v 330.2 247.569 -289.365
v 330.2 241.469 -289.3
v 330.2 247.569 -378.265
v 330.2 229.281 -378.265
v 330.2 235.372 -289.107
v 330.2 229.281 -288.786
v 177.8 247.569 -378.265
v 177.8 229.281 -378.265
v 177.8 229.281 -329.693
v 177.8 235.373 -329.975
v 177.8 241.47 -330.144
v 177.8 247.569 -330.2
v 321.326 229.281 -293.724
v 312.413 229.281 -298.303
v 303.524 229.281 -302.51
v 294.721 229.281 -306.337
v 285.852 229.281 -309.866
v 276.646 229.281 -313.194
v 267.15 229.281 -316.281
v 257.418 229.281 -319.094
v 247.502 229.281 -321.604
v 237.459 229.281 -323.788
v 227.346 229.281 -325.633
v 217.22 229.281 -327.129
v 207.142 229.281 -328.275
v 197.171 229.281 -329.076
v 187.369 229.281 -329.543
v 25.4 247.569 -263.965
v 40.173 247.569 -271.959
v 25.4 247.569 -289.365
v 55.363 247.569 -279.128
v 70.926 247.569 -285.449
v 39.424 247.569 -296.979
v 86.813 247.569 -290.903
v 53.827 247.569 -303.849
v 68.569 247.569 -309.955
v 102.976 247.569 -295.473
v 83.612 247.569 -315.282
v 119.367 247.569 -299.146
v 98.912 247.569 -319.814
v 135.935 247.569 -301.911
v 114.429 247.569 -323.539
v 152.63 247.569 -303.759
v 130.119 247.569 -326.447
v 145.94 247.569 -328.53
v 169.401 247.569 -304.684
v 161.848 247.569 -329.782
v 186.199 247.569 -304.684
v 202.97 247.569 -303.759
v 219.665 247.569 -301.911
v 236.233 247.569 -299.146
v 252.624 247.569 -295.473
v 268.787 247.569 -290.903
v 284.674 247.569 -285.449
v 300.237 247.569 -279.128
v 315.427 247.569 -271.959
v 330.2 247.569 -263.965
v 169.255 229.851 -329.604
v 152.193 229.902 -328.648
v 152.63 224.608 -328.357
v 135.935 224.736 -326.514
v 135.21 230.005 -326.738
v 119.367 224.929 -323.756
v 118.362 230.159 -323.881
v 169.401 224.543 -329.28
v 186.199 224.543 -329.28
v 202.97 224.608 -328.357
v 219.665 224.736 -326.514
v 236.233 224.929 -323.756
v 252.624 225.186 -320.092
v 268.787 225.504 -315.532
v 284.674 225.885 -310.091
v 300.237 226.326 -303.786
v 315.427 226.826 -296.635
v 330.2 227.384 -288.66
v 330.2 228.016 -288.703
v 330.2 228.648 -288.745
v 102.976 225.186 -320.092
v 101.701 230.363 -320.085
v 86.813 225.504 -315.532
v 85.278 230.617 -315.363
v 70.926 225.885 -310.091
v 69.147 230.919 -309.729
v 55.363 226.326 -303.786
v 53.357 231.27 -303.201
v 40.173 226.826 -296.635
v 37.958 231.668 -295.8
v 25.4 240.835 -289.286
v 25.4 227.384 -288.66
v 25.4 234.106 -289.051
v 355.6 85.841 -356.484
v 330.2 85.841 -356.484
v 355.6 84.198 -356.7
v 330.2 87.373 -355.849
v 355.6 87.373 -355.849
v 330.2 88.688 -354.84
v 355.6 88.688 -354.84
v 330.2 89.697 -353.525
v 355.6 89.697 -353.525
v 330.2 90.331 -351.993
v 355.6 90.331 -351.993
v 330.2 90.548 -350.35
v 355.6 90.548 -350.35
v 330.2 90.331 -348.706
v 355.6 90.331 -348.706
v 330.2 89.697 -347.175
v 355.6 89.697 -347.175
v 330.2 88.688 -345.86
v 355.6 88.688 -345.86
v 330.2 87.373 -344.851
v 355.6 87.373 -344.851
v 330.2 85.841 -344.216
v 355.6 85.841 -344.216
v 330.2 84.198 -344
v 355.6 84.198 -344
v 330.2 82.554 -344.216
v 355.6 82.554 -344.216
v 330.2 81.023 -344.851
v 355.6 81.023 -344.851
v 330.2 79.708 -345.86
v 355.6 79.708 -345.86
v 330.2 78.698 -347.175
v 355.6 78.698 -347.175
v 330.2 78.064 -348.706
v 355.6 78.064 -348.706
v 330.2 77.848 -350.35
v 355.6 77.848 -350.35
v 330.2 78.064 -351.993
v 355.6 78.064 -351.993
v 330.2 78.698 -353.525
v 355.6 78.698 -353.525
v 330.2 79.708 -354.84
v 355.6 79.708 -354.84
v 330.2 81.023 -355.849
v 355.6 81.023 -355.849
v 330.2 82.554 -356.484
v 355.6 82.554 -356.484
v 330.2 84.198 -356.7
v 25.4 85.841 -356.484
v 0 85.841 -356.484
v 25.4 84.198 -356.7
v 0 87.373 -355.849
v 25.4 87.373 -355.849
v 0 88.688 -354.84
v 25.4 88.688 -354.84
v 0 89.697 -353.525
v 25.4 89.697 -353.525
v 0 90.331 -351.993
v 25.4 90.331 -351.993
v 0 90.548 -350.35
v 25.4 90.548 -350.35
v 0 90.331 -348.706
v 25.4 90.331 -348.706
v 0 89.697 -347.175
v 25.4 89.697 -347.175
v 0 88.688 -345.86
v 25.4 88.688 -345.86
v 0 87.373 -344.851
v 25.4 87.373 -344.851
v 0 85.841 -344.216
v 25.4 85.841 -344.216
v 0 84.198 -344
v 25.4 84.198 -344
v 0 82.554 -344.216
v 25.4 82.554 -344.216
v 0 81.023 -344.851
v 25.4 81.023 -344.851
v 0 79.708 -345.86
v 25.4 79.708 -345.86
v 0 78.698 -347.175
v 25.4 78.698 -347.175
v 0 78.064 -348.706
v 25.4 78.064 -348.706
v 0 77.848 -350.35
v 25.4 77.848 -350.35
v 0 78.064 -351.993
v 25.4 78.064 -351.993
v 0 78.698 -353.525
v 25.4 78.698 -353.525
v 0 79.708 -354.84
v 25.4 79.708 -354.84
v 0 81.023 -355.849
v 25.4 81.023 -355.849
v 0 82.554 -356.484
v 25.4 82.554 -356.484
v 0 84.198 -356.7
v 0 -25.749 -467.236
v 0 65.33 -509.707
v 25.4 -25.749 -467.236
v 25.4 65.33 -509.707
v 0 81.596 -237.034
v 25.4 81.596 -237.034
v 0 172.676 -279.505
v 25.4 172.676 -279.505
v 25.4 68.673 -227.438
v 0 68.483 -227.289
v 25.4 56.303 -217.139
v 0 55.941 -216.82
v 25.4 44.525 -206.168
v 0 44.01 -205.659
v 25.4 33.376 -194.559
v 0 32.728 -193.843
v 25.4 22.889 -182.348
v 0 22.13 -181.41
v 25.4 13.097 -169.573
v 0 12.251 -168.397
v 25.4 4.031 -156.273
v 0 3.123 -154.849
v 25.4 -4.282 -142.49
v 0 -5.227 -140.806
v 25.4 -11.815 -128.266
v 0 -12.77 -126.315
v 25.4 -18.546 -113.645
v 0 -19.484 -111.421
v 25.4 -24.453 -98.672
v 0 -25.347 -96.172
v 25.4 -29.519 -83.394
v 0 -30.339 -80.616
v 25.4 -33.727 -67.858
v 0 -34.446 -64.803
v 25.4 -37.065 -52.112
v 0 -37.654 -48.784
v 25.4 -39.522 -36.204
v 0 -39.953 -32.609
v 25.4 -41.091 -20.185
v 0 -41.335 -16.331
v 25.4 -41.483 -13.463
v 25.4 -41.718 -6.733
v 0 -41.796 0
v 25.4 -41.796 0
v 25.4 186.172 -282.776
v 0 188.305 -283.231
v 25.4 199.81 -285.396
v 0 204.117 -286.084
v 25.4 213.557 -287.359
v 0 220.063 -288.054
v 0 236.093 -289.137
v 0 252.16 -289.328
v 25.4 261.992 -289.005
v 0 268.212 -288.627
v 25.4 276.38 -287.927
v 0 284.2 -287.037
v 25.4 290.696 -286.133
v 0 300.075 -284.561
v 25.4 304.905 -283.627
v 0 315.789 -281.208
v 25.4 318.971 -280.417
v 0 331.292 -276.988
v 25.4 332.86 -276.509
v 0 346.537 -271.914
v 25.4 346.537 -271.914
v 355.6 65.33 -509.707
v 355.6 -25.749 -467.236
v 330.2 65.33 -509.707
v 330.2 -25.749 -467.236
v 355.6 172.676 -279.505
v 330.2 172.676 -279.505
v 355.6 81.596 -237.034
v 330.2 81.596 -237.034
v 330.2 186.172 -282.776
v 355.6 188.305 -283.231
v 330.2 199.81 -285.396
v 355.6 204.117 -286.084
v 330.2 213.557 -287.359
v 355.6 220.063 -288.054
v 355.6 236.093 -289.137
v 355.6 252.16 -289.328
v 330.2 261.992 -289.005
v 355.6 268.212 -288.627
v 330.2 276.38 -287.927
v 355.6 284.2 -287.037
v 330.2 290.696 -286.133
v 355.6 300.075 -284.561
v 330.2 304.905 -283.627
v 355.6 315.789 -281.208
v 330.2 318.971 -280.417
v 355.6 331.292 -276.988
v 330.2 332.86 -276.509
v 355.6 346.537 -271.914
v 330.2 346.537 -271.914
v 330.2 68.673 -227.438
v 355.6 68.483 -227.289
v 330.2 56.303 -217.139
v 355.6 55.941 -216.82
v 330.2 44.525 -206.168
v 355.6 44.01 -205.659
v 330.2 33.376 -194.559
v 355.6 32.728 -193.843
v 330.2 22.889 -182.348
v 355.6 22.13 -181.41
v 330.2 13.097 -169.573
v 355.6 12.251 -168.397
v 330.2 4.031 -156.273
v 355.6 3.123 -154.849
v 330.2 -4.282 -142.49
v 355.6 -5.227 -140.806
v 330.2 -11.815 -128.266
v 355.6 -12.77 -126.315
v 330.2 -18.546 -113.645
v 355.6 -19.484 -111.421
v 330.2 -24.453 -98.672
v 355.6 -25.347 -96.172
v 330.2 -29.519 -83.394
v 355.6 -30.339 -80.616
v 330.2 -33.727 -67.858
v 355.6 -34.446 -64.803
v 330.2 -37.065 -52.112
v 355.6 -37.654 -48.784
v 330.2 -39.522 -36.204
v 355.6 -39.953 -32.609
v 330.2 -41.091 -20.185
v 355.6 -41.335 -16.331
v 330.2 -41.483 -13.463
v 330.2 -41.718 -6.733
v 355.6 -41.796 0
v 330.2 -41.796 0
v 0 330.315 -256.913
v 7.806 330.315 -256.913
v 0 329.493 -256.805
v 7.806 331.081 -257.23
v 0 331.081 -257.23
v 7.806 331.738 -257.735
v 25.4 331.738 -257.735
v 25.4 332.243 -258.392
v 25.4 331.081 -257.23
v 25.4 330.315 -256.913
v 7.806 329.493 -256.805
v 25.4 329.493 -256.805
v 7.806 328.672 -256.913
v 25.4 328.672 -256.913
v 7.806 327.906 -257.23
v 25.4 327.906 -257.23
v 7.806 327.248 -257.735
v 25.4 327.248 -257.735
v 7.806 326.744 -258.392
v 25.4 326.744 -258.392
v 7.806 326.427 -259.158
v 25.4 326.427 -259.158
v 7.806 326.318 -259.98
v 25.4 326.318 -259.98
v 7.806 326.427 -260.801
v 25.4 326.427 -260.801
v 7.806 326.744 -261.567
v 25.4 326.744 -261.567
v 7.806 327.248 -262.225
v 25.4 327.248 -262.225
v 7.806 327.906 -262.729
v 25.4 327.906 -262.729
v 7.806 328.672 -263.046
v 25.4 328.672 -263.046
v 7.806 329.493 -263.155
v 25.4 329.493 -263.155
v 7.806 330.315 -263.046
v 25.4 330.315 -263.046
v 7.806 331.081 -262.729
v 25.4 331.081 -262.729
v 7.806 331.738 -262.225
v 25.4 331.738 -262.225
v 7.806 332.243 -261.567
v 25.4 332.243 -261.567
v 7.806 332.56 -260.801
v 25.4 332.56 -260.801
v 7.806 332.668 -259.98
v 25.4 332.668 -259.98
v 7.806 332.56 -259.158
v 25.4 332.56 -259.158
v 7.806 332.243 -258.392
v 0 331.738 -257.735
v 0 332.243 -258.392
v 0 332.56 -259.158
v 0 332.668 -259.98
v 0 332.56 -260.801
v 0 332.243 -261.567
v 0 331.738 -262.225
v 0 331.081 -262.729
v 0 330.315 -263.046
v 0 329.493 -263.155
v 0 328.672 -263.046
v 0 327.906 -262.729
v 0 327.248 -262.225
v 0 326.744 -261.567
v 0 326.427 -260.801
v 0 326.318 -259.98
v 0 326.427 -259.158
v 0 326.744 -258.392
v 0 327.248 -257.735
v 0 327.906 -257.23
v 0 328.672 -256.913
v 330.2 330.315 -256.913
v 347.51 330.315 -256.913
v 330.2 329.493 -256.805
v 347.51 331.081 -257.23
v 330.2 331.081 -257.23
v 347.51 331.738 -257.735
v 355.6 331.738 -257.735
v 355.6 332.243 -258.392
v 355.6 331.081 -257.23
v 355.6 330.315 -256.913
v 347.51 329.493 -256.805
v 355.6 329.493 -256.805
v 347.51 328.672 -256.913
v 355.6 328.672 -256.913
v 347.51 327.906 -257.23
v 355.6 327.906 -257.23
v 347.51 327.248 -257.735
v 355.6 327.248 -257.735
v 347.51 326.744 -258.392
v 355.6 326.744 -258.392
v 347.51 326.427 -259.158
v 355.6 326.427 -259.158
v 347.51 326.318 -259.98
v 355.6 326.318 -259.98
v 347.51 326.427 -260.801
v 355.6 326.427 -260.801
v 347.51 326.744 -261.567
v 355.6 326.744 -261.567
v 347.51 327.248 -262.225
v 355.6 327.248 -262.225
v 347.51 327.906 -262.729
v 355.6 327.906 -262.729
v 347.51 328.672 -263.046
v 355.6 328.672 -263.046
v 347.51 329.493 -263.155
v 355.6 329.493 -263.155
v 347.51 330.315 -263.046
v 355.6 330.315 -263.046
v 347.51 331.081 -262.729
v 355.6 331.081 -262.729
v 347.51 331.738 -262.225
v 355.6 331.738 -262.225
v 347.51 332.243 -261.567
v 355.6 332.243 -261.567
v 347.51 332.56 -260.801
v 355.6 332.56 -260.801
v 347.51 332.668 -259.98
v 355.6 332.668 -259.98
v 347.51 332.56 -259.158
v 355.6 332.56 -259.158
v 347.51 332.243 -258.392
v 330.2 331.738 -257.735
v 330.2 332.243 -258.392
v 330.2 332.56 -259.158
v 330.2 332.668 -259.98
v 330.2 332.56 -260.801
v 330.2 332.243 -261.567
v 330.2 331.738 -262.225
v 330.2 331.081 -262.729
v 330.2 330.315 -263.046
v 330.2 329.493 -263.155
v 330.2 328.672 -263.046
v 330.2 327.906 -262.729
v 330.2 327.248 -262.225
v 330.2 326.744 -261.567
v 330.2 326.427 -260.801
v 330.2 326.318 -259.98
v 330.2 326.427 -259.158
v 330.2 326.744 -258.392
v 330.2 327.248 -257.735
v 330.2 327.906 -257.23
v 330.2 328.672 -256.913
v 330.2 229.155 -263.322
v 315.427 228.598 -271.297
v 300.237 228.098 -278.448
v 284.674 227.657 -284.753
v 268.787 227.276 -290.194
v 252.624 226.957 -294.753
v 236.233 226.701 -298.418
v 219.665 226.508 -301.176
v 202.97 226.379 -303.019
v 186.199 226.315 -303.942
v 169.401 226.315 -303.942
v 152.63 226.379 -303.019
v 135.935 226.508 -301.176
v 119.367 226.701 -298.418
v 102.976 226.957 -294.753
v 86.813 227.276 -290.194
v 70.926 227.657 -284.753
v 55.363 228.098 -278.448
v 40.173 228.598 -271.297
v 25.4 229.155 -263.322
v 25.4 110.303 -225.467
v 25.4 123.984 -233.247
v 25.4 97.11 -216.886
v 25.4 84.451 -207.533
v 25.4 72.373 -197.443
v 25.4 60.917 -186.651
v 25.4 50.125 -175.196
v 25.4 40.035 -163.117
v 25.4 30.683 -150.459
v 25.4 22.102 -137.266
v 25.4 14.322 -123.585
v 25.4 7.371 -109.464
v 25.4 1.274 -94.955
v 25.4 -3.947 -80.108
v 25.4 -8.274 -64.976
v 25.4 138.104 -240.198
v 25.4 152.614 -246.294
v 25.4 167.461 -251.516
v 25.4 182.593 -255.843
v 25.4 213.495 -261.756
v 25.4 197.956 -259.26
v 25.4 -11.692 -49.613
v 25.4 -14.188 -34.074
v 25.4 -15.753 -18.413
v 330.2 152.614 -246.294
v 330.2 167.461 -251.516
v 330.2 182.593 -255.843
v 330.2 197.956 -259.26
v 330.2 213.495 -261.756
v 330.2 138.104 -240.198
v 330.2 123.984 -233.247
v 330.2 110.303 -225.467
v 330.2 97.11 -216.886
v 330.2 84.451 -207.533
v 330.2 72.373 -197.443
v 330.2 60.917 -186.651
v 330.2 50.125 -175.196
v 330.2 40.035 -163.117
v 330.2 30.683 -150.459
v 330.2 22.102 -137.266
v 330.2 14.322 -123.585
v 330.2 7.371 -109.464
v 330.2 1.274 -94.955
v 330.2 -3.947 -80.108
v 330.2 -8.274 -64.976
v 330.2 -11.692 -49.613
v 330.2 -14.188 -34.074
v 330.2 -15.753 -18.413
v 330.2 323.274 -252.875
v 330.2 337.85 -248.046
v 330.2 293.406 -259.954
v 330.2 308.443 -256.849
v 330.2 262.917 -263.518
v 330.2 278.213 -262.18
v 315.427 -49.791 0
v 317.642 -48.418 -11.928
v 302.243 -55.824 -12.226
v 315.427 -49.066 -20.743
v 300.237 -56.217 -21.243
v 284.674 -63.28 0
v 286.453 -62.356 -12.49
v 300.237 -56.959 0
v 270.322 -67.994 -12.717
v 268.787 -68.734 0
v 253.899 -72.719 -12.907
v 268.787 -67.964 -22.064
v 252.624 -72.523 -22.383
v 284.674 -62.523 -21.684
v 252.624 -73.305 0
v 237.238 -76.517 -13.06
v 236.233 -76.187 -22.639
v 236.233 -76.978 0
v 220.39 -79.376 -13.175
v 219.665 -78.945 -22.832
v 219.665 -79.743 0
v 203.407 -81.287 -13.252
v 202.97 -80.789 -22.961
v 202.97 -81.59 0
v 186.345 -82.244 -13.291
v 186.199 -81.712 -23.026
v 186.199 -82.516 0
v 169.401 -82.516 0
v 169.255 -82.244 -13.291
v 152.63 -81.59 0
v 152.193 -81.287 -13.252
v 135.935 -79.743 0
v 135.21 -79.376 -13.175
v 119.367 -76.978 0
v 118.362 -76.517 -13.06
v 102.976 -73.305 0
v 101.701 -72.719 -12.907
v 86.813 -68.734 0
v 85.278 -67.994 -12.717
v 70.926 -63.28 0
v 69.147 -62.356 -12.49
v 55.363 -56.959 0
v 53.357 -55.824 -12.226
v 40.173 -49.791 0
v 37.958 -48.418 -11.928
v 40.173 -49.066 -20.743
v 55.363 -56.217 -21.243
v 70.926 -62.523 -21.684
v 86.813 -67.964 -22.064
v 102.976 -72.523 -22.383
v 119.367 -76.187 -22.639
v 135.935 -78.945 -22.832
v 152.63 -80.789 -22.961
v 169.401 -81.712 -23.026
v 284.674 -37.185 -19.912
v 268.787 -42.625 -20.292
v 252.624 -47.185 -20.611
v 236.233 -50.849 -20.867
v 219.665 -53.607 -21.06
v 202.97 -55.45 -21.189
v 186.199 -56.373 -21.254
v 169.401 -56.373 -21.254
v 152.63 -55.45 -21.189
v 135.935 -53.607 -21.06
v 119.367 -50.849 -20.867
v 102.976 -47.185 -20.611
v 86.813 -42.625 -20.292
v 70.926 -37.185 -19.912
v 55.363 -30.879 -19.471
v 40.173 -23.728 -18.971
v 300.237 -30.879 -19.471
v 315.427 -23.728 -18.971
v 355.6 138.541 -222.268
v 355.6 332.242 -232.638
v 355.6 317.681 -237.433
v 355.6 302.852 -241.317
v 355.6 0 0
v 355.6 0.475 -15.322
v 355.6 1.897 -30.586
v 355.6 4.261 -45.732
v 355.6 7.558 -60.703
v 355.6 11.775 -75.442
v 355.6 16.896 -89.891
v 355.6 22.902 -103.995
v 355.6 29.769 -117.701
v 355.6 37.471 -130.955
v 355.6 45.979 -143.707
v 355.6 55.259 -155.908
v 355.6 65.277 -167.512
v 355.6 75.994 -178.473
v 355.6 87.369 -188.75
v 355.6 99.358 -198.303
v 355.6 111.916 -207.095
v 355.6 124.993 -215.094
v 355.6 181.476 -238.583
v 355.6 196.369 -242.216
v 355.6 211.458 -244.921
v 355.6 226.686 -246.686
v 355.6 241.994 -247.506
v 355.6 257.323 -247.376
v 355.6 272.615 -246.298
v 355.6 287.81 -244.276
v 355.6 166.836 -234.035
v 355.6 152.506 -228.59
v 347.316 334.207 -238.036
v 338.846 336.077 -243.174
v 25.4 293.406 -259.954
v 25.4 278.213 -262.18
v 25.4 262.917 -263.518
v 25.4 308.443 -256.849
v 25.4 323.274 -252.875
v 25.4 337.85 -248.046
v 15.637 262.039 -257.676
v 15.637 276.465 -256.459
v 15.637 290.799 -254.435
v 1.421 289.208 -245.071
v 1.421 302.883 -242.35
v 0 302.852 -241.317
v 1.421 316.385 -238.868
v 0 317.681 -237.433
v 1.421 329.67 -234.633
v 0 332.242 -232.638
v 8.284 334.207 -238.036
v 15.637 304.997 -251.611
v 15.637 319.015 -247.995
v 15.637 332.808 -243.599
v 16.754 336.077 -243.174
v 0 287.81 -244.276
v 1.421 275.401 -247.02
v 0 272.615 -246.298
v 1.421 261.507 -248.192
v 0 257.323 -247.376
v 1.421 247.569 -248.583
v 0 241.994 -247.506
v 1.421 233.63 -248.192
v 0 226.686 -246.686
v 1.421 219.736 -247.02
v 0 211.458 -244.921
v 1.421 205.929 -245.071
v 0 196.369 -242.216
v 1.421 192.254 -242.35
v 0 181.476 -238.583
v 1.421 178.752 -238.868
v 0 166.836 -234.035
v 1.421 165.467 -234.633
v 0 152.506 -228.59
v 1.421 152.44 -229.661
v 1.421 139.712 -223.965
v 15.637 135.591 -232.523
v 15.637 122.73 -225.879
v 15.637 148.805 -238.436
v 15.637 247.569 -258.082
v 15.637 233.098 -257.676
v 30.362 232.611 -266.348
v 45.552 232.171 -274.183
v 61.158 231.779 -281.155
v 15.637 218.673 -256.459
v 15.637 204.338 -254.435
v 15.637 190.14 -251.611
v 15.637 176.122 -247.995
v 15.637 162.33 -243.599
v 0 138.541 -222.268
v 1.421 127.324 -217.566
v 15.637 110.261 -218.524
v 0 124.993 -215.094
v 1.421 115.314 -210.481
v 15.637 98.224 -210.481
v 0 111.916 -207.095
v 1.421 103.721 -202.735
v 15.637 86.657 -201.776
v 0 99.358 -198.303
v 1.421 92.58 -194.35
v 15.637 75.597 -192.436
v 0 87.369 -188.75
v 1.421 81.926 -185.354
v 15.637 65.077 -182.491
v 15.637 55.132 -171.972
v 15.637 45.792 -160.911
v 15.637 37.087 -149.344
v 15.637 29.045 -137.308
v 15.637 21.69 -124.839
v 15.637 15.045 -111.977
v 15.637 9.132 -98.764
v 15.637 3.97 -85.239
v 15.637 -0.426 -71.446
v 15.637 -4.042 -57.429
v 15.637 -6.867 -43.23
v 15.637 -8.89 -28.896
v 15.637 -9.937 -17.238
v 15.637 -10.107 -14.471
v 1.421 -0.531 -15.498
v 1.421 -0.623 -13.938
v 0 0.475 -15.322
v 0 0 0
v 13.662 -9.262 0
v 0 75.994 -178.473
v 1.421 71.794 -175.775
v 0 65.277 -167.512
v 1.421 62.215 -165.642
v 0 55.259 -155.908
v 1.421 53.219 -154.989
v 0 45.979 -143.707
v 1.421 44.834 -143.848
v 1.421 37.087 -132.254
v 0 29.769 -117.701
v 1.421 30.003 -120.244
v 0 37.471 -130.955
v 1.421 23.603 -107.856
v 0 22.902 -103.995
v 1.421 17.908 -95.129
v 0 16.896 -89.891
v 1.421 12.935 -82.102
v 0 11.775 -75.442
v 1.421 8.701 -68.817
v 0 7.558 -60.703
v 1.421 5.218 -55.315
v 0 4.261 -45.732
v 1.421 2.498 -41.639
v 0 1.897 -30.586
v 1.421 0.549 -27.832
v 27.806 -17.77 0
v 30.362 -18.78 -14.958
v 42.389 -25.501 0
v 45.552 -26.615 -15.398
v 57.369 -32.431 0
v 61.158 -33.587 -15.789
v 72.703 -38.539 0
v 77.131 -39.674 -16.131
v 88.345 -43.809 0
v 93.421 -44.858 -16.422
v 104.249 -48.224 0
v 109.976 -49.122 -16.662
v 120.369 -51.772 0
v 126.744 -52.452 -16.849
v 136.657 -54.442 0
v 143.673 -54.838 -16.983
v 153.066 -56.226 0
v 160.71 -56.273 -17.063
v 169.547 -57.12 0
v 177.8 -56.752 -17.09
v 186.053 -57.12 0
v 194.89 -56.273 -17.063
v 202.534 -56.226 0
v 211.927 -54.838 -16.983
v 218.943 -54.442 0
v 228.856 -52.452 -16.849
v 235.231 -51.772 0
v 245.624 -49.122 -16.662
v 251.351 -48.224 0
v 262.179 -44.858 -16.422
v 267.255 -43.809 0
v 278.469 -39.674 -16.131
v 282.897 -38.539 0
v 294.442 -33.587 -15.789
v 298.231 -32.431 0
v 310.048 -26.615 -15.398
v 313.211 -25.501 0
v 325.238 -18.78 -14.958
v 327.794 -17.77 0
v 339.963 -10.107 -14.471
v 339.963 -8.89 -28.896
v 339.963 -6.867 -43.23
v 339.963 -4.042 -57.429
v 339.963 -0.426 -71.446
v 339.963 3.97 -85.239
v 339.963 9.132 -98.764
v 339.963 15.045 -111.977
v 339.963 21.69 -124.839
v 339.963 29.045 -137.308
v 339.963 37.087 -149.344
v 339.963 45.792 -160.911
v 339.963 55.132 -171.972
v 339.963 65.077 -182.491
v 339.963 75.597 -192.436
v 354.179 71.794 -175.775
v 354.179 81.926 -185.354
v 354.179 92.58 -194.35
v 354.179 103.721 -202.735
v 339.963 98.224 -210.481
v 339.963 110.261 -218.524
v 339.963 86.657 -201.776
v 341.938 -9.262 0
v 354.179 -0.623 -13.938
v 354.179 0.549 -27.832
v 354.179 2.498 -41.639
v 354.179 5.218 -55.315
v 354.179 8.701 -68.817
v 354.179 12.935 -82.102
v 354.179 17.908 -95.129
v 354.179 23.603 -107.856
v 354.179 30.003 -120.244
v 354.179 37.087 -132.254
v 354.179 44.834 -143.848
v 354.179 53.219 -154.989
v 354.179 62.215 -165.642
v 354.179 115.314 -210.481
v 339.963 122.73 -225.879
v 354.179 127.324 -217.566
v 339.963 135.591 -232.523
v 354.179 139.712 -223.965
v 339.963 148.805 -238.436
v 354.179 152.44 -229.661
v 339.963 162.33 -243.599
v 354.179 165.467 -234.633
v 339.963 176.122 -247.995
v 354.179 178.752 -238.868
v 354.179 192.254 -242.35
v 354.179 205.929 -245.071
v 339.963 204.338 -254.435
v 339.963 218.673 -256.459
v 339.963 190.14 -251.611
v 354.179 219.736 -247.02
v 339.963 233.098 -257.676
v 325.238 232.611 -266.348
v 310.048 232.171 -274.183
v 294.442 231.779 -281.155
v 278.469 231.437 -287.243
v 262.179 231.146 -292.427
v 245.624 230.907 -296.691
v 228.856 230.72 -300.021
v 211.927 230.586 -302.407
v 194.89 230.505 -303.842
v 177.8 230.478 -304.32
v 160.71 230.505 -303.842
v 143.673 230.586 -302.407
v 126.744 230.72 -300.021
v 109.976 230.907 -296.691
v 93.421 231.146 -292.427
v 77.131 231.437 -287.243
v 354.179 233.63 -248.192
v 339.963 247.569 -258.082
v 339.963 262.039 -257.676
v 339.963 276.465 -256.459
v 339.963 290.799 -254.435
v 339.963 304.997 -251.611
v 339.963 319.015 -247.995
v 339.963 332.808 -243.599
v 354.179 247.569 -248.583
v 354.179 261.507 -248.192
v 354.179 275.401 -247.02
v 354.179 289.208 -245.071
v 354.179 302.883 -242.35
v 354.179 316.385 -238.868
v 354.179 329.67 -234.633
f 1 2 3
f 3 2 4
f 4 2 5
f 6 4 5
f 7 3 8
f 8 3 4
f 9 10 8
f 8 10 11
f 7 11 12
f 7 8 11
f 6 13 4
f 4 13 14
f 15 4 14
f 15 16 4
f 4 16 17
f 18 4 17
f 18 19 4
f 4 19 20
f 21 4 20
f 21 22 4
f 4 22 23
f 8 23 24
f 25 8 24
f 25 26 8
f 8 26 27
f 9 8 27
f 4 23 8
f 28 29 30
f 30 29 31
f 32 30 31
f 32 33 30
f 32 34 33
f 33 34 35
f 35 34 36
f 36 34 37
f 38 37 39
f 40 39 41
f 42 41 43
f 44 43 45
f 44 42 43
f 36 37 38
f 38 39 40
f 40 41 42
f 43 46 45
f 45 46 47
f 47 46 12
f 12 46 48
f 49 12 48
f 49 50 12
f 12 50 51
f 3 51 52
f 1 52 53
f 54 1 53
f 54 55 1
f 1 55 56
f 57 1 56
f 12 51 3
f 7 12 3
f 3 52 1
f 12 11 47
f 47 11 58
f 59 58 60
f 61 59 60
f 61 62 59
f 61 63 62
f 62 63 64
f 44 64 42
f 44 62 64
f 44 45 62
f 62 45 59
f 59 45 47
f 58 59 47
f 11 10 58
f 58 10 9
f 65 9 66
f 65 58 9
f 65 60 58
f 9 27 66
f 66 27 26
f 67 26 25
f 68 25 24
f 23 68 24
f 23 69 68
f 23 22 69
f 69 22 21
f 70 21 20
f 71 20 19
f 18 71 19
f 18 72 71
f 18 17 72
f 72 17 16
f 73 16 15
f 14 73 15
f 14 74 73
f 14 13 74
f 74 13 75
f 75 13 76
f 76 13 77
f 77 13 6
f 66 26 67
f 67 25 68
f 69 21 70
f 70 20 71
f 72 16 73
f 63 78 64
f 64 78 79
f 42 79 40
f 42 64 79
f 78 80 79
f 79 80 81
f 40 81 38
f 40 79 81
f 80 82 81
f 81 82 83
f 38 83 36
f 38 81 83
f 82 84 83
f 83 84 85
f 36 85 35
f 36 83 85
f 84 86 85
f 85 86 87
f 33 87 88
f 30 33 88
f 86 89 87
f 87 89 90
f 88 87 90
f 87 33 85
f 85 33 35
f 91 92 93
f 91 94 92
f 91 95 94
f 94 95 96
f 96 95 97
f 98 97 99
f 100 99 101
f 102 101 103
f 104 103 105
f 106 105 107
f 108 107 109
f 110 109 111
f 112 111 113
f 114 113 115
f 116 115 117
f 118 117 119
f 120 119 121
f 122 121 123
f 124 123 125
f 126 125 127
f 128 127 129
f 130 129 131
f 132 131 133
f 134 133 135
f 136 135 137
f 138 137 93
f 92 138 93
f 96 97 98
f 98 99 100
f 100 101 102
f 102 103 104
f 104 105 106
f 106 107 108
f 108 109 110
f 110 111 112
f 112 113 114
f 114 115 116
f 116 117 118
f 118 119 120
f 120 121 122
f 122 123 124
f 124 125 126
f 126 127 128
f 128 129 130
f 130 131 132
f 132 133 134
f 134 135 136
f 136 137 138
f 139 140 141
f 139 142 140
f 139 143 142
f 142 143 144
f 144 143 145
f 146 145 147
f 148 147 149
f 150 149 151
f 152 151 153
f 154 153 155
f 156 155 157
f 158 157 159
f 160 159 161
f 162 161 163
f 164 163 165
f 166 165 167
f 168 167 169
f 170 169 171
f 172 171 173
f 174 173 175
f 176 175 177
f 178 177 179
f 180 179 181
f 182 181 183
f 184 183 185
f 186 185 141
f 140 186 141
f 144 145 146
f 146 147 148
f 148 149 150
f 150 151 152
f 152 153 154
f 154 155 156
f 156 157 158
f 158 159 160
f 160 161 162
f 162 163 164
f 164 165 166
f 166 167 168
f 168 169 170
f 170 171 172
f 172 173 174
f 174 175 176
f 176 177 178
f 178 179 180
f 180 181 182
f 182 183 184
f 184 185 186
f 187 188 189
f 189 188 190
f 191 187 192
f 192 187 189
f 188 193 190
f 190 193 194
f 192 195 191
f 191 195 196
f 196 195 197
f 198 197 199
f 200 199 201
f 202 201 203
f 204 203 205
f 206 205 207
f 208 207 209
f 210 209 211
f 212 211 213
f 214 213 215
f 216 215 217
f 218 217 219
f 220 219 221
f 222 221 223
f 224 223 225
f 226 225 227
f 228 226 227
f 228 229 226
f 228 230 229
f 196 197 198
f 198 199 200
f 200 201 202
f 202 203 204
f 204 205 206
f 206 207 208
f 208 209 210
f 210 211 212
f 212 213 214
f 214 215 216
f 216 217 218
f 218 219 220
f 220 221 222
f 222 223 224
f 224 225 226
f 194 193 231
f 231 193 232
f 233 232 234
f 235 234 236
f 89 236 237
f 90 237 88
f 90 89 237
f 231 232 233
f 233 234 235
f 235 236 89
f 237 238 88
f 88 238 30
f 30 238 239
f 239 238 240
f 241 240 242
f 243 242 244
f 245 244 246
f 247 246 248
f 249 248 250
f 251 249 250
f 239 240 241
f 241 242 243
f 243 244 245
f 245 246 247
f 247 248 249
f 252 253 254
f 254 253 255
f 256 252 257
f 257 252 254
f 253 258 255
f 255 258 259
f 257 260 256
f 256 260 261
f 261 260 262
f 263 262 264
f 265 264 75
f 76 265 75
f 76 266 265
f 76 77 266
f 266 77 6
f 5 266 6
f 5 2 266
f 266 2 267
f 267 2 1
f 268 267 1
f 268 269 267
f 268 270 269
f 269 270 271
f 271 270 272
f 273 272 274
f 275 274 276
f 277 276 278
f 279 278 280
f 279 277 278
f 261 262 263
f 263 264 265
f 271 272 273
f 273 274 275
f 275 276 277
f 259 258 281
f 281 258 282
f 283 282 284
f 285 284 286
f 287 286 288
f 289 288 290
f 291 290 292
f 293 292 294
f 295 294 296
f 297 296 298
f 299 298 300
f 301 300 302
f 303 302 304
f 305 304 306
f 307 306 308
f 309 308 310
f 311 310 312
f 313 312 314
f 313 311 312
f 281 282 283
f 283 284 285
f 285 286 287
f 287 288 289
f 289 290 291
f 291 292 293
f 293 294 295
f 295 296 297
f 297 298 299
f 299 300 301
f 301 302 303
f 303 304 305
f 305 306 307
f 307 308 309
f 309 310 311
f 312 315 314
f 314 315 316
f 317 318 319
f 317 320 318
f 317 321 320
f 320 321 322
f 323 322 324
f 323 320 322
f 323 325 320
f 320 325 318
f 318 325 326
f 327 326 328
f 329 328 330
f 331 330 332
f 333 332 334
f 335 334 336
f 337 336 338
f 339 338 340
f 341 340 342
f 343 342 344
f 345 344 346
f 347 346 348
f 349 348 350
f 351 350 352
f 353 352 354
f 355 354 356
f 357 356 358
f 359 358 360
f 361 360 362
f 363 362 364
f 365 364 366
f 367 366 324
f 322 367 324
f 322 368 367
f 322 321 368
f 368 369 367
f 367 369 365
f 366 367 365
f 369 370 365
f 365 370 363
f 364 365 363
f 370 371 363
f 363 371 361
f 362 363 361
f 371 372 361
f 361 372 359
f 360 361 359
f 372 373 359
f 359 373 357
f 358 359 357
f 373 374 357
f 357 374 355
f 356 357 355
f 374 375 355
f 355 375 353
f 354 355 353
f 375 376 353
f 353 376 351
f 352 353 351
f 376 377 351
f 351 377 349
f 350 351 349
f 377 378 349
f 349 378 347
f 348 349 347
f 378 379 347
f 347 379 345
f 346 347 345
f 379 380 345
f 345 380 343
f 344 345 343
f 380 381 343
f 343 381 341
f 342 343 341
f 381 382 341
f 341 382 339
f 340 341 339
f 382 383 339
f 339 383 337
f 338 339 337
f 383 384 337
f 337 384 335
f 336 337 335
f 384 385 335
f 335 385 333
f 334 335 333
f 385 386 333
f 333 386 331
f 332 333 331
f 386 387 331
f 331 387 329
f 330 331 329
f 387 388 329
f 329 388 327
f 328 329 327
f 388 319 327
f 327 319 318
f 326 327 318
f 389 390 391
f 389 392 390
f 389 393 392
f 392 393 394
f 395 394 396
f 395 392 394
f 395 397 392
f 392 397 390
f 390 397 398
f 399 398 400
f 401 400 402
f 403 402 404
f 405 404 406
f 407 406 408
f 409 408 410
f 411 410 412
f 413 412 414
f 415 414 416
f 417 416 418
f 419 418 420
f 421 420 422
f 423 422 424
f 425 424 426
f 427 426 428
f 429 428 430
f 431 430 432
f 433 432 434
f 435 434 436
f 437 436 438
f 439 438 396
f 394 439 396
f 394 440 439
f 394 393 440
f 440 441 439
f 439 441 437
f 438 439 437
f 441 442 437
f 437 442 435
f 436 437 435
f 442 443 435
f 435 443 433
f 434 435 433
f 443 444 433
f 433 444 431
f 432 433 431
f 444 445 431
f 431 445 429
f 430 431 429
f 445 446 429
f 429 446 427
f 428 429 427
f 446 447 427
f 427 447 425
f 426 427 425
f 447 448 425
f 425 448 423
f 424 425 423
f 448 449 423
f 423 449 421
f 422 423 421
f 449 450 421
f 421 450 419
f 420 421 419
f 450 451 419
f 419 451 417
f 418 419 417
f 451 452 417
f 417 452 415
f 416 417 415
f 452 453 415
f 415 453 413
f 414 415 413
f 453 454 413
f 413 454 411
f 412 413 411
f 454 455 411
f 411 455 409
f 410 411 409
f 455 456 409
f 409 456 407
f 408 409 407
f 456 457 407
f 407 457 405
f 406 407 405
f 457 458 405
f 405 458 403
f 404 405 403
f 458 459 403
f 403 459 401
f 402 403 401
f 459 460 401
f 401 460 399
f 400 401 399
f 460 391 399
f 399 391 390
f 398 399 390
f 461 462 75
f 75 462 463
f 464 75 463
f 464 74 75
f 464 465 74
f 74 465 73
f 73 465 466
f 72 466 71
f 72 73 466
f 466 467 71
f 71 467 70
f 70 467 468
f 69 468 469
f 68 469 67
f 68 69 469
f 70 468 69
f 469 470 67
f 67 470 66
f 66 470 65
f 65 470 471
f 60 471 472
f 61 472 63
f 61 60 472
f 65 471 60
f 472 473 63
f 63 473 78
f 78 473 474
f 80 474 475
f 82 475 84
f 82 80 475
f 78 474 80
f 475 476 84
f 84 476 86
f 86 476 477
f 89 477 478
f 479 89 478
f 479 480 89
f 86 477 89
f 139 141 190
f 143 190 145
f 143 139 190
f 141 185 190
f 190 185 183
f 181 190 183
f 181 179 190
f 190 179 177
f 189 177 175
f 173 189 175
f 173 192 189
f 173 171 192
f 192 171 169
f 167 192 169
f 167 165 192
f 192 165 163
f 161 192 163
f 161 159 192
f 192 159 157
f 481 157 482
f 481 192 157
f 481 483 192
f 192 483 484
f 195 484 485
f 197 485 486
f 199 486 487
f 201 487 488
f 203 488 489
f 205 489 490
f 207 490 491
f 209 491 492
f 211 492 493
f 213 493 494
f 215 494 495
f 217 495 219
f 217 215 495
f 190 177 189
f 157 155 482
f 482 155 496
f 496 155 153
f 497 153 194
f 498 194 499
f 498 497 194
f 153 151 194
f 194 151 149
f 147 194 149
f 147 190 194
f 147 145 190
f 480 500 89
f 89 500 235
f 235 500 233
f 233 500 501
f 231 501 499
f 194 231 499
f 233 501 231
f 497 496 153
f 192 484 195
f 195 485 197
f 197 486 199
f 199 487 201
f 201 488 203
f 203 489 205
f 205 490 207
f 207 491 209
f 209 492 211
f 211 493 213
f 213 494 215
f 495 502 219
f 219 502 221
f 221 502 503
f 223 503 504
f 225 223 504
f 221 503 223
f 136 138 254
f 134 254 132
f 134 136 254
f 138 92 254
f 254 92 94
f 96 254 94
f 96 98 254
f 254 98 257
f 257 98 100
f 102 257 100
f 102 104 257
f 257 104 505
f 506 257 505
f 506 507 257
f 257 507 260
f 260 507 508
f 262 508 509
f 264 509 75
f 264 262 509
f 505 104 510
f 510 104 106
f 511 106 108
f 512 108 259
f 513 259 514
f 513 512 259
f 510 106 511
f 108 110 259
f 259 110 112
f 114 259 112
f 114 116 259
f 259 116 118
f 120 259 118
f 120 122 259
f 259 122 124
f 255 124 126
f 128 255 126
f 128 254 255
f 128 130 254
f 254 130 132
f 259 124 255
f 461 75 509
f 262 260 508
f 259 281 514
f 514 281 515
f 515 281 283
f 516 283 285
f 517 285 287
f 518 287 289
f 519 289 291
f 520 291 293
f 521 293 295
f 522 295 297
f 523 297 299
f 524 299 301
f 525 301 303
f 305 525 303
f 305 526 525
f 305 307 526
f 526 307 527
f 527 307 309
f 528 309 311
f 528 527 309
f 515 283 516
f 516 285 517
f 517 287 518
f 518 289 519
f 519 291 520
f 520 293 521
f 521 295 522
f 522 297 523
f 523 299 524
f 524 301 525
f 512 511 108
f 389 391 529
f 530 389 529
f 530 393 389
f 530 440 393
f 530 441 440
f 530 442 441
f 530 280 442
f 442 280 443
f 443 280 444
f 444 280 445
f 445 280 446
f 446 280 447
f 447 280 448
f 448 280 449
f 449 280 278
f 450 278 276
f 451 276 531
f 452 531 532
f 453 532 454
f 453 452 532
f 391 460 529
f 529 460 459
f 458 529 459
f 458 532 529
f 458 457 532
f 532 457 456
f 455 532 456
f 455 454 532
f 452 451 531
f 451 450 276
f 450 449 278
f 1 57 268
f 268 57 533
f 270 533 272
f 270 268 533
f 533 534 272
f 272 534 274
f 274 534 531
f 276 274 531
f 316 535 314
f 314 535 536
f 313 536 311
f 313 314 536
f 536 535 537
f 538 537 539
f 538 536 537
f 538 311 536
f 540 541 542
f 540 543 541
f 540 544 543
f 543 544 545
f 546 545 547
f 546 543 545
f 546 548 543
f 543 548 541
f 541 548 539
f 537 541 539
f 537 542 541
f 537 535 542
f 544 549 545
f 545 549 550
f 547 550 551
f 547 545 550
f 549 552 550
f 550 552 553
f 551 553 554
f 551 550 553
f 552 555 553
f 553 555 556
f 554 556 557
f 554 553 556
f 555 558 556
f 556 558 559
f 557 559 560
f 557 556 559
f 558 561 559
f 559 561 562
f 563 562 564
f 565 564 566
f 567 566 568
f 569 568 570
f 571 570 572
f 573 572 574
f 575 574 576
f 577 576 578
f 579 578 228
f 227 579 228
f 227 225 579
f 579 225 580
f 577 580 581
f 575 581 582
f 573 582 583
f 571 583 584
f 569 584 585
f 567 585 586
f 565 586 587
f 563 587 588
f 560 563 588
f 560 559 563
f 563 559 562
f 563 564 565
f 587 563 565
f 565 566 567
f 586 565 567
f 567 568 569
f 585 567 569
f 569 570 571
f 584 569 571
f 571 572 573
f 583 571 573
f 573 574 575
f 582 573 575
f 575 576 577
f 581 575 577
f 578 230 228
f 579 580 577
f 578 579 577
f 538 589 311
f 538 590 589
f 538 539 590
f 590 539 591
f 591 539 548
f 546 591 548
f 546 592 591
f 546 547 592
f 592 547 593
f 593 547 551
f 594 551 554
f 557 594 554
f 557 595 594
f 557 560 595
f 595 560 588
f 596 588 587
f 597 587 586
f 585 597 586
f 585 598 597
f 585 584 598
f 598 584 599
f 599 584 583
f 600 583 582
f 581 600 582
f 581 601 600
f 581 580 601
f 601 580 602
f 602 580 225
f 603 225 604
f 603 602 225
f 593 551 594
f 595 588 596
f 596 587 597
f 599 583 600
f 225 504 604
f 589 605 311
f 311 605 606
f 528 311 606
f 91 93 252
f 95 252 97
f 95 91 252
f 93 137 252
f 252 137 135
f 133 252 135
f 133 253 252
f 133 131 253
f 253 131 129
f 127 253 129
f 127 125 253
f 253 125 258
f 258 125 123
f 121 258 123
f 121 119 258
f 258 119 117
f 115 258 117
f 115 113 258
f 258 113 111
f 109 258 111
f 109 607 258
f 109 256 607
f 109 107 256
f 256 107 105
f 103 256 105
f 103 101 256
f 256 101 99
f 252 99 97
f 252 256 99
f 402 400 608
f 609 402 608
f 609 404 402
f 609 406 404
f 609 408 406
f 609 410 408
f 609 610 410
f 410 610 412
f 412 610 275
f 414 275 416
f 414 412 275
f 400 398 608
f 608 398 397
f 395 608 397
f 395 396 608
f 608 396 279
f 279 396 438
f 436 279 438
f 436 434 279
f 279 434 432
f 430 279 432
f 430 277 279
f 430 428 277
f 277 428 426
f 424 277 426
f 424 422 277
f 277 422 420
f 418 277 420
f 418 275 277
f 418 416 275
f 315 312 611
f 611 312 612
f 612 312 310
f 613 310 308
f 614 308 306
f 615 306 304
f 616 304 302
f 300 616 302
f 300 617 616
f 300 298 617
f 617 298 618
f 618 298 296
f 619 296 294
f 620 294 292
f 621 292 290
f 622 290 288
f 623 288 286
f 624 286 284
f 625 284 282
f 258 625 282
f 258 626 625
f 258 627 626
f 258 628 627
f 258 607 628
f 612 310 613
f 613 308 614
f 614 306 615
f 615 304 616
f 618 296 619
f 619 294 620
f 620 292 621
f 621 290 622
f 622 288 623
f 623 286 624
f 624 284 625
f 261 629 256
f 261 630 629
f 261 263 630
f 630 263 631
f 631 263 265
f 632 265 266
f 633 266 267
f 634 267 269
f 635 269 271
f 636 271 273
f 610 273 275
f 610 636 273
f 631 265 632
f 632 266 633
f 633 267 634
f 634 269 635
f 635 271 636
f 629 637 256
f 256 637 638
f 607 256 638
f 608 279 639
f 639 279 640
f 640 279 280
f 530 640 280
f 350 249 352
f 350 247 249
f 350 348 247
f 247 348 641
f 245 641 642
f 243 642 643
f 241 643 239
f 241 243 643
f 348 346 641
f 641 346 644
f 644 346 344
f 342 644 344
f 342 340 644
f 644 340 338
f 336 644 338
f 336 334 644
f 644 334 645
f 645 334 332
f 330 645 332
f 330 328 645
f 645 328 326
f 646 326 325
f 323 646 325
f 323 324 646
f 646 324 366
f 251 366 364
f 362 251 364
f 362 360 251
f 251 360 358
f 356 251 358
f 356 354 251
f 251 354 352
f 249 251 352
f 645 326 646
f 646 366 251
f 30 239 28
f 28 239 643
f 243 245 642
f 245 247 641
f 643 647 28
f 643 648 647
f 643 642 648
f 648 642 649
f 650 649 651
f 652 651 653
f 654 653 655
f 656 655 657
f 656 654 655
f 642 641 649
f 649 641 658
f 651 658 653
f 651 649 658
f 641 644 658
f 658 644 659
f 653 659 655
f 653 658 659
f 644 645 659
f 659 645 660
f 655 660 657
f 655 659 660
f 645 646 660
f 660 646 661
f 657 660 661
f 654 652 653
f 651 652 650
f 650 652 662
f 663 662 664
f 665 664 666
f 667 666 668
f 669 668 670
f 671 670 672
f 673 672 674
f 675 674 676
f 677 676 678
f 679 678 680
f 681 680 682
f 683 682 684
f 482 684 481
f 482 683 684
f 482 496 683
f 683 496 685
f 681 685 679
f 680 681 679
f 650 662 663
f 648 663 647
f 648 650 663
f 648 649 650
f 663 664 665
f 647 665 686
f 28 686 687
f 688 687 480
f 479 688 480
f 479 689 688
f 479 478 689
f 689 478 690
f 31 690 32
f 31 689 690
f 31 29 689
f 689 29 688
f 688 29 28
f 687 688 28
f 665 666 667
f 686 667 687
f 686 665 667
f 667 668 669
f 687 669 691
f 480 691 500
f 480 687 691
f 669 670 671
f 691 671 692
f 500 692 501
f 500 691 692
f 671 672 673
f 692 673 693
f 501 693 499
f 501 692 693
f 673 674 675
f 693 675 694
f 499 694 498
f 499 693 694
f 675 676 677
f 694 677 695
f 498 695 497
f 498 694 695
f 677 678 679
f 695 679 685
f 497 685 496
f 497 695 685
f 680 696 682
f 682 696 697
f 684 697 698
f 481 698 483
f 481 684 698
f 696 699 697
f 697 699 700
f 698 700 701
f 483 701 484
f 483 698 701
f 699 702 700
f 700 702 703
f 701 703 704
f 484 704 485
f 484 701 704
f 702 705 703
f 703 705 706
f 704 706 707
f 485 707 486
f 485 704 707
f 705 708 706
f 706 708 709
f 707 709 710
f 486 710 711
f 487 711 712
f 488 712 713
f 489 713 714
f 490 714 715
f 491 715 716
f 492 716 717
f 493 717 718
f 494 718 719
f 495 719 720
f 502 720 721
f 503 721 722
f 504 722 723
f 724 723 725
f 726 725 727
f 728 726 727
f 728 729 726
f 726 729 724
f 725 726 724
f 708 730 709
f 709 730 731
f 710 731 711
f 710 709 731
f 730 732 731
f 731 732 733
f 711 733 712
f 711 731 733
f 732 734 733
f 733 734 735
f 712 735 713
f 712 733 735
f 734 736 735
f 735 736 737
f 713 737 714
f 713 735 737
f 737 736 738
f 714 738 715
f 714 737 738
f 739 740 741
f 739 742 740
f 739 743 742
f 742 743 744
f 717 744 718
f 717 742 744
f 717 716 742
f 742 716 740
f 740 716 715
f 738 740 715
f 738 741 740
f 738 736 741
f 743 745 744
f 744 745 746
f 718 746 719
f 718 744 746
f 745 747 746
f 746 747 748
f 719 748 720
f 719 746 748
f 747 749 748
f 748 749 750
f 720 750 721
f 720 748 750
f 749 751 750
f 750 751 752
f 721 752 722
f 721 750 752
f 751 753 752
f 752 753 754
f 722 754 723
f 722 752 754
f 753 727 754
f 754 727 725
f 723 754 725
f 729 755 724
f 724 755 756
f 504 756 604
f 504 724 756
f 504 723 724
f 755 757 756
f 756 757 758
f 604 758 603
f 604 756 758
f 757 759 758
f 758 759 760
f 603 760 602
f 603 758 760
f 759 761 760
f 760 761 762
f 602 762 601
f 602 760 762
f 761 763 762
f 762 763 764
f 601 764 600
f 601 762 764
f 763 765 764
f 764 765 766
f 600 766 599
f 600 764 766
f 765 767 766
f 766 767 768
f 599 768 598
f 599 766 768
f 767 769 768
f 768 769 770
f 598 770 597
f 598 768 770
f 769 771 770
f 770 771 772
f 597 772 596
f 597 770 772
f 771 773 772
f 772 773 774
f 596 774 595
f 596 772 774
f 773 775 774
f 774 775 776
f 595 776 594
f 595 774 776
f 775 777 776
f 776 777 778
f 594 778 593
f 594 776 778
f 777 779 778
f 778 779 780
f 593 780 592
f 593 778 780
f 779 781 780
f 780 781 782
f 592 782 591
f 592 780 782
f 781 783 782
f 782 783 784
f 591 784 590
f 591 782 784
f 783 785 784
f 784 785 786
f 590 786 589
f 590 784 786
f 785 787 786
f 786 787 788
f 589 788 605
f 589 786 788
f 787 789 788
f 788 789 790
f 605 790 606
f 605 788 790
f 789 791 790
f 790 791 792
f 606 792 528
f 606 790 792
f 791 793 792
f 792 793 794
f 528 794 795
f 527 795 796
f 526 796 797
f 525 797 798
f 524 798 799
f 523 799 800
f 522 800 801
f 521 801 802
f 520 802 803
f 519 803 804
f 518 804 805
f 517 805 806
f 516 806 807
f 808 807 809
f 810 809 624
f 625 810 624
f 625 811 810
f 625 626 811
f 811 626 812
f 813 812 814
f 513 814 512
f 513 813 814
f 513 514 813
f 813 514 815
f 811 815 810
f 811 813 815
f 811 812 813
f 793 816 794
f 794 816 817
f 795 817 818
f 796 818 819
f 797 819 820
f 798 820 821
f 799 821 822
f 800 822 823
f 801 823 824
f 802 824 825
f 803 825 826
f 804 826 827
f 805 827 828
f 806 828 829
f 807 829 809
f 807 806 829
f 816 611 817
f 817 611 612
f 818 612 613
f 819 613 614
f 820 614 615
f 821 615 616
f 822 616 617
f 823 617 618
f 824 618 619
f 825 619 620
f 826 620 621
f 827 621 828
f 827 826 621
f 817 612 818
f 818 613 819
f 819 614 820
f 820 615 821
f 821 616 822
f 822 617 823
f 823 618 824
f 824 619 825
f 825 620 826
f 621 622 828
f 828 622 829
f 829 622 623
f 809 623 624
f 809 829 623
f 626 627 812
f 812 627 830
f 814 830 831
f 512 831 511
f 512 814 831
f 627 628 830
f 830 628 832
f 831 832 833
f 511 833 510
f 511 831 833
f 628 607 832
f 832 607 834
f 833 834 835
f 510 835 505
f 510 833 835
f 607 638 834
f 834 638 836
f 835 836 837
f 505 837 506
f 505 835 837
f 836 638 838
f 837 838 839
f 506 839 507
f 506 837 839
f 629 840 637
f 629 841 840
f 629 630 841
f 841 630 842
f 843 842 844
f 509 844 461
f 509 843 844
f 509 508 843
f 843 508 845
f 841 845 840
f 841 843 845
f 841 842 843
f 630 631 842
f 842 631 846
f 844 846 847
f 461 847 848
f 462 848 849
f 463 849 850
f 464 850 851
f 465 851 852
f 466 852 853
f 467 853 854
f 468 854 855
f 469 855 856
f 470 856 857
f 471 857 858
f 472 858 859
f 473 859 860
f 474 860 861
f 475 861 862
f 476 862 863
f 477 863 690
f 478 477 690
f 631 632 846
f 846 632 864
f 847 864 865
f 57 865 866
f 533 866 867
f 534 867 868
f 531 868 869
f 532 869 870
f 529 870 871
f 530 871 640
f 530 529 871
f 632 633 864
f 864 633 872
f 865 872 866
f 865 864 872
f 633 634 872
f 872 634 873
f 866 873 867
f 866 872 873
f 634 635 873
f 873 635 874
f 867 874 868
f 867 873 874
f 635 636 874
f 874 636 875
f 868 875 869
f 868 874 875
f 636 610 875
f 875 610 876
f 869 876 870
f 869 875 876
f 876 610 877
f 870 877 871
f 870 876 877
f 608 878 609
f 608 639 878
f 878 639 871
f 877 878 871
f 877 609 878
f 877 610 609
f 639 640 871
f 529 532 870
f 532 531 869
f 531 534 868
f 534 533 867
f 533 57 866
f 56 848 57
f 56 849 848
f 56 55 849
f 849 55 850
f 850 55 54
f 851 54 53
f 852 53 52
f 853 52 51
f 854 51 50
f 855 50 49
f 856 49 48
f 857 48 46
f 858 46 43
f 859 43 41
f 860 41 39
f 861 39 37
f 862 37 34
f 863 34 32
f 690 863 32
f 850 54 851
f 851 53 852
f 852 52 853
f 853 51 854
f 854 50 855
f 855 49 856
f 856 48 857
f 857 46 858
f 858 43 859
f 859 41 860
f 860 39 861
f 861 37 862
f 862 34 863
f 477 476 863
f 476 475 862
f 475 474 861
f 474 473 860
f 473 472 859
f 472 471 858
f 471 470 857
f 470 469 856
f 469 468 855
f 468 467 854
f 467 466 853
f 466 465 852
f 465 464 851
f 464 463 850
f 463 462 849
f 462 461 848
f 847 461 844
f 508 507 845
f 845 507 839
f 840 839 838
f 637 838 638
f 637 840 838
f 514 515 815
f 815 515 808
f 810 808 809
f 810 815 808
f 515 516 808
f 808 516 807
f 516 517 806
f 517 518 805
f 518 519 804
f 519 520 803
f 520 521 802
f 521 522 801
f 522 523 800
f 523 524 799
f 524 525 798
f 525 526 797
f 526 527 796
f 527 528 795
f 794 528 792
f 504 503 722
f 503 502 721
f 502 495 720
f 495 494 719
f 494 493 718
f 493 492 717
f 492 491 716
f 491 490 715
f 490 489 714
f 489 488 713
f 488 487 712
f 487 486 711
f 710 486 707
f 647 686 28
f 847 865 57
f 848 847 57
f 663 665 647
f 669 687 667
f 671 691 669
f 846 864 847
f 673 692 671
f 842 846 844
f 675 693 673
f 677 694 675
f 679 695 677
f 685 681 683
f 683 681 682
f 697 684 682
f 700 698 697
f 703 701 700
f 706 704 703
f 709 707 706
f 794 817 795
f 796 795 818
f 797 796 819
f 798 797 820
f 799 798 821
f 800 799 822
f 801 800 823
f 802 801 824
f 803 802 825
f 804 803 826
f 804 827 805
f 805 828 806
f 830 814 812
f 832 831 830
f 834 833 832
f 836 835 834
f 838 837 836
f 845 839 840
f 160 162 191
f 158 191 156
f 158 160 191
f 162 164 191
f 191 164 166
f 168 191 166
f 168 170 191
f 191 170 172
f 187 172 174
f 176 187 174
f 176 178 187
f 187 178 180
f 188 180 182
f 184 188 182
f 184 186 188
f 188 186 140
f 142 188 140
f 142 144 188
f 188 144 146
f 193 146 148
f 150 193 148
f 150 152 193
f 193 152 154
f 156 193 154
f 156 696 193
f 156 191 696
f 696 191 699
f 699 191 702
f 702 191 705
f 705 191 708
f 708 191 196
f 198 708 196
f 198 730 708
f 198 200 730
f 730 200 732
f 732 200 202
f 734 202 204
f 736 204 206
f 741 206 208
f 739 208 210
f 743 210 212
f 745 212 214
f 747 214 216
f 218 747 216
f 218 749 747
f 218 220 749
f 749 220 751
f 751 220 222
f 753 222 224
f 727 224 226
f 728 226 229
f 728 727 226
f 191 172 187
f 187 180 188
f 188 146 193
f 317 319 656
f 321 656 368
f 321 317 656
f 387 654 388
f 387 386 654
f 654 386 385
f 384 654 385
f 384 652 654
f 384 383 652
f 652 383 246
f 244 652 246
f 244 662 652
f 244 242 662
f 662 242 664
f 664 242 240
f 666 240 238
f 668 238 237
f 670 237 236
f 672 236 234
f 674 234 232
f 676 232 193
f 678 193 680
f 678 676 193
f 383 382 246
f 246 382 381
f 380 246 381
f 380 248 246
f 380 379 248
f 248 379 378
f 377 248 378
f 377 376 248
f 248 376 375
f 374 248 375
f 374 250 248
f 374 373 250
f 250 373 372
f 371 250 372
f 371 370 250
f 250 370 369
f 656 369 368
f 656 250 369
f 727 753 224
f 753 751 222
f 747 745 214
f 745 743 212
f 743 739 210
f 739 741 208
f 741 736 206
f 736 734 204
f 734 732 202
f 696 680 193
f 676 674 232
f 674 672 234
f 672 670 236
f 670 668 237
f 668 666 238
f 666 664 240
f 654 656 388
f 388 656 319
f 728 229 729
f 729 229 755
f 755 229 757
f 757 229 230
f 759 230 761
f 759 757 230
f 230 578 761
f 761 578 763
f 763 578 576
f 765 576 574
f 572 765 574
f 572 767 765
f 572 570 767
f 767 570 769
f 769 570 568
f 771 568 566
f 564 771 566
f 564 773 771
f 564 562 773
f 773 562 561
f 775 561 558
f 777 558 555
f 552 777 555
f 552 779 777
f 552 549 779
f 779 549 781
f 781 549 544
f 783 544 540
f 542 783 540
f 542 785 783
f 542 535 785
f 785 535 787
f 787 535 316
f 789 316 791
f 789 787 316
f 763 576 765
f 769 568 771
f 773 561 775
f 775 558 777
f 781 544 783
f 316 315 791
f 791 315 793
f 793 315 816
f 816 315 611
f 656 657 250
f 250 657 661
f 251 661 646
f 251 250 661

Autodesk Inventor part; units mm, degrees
ref_plane "YZ Plane" through (0, 0, 0) normal (1, 0, 0) x (0, 1, 0)
sketch "Sketch1" plane through (0, 0, 0) normal (0, 0, 1) x (1, 0, 0)
  line L0 (0, 0) -> (0, -41.796)
  line L1 (25.4, -16.396) -> (25.4, -41.796)
  arc A0 (0, 0) -> (25.4, -16.396) centre (177.8, 247.5686) ccw
  line L2 (355.6, 0) -> (355.6, -41.796)
  line L3 (330.2, -16.396) -> (330.2, -41.796)
  arc A1 (330.2, -16.396) -> (355.6, 0) centre (177.8, 247.5686) ccw
  line L4 (177.8, 247.5686) -> (533.4, 247.5686)
  line L5 (25.4, -41.796) -> (0, -41.796)
  line L6 (330.2, -41.796) -> (331.8938, -41.796)
  line L7 (331.8938, -41.796) -> (355.6, -41.796)
revolve "Revolution1" add sketch "Sketch1" angle 110 about axis through (177.8, 247.5686, 0) along (1, 0, 0)
sketch "Sketch2" plane through (0, -41.796, 0) normal (0, 0, 1) x (1, 0, 0)
  line L0 (25.4, 0) -> (25.4, 25.4) projected
  line L1 (355.6, 41.796) -> (355.6, 0) projected
  arc A0 (330.2, 25.4) -> (355.6, 41.796) centre (177.8, 289.3645) ccw projected
  line L2 (330.2, 0) -> (330.2, 25.4) projected
  arc A1 (25.4, 25.4) -> (330.2, 25.4) centre (177.8, 289.3645) ccw
  arc A2 (25.4, 0) -> (330.2, 0) centre (177.8, 263.9645) ccw
  line L3 (25.4, 25.4) -> (25.4, 0)
  line L4 (330.2, 25.4) -> (330.2, 0)
  line L5 (177.8, 289.3645) -> (533.4, 289.3645)
  line L6 (355.6, 0) -> (330.2, 0) projected
  dimension "d6" = 304.8
  dimension "d7" = 304.8
revolve "Revolution2" add sketch "Sketch2" angle 4 about axis through (177.8, 247.5686, 0) along (1, 0, 0) contours L0 A1 L2 A2
ref_plane "Work Plane1" through (0, 304.8, 0) normal (0, 1, 0) x (-1, 0, 0)
ref_plane "Work Plane2" through (533.4, 247.5686, 0) normal (0, 1, 0) x (-1, 0, 0)
sketch "Sketch8" plane through (533.4, 247.5686, 0) normal (0, 1, 0) x (-1, 0, 0)
  arc A0 (177.8, -247.5686) -> (203.2, -263.9645) centre (355.6, 0) ccw projected
  line L0 (203.2, -263.9645) -> (203.2, -289.3645) projected
  line L1 (203.2, -289.3645) -> (177.8, -289.3645) projected
  line L2 (177.8, -289.3645) -> (177.8, -247.5686) projected
  line L3 (508, -289.3645) -> (508, -263.9645) projected
  line L4 (533.4, -247.5686) -> (533.4, -289.3645) projected
  line L5 (533.4, -289.3645) -> (508, -289.3645) projected
  arc A1 (203.2, -263.9645) -> (508, -263.9645) centre (355.6, 0) ccw
  arc A2 (203.2, -289.3645) -> (508, -289.3645) centre (355.6, -25.4) ccw
  line L6 (203.2, -289.3645) -> (203.2, -263.9645)
  line L7 (508, -263.9645) -> (508, -289.3645)
  line L8 (355.6, 0) -> (533.4, 0)
  arc A3 (508, -263.9645) -> (533.4, -247.5686) centre (355.6, 0) ccw projected
  dimension "d44" = 304.8
  dimension "d45" = 304.8
revolve "Revolution4" add sketch "Sketch8" angle 4 about axis through (177.8, 247.5686, 0) along (-1, 0, 0) contours A1 L3 A2 L0
sketch "Sketch9" plane through (25.4, 247.5686, -263.9645) normal (1, 0, 0) x (0, 0, -1)
  line L0 (0, 0) -> (25.4, 0) projected
  line L1 (-15.919, 90.2812) -> (7.9492, 98.9685) projected
  line L2 (-3.9849, 94.6248) -> (-3.9849, 81.9248)
  point P0 (-263.9645, -247.5686)
  dimension "d47" = 12.7
hole "Hole3" at (25.4, 329.4934, -259.9796) direction (1, 0, 0) diameter 6.35 end through all
hole "Hole4" at (25.4, 329.4934, -259.9796) direction (-1, 0, 0) diameter 6.35 end through all
sketch "Sketch10" plane through (355.6, -41.796, 0) normal (1, 0, 0) x (0, 0, -1)
  arc A0 (0, 0) -> (271.9137, 388.333) centre (0, 289.3645) ccw projected
  line L0 (237.0336, 123.3919) -> (467.2357, 16.0468)
  line L1 (165.9727, 52.331) -> (419.9727, 52.331) construction
  line L2 (279.5047, 214.4715) -> (509.7069, 107.1264)
  line L3 (237.0336, 123.3919) -> (491.0336, 123.3919) construction
  line L4 (509.7069, 107.1264) -> (467.2357, 16.0468)
  arc A1 (237.0336, 123.3919) -> (279.5047, 214.4715) centre (0, 289.3645) ccw
  dimension "d65" = 254
  dimension "d66" = 25
  dimension "d67" = 254
  dimension "d68" = 25
extrude "Extrusion3" add sketch "Sketch10" against normal blind 25.4
sketch "Sketch11" plane through (0, -41.796, 0) normal (-1, 0, 0) x (0, 0, 1)
  arc A0 (-271.9137, 388.333) -> (0, 0) centre (0, 289.3645) ccw projected
  line L0 (-279.5047, 214.4715) -> (-509.7069, 107.1264) projected
  line L1 (-509.7069, 107.1264) -> (-467.2357, 16.0468) projected
  line L2 (-467.2357, 16.0468) -> (-237.0336, 123.3919) projected
extrude "Extrusion4" add sketch "Sketch11" against normal blind 25.4
sketch "Sketch12" plane through (0, -41.796, 0) normal (-1, 0, 0) x (0, 0, 1)
  line L0 (-509.7069, 107.1264) -> (-467.2357, 16.0468) projected
  line L1 (-467.2357, 16.0468) -> (-237.0336, 123.3919) projected
  line L2 (-488.4713, 61.5866) -> (-350.35, 125.9937)
  dimension "d73" = 152.4
hole "Hole5" at (0, 84.1977, -350.35) direction (1, 0, 0) diameter 12.7 end through all
sketch "Sketch13" plane through (177.8, 247.5686, -25.4) normal (0, 1, 0) x (1, 0, 0)
  line L0 (152.4, 263.9645) -> (152.4, 238.5645) projected
  arc A0 (152.4, 238.5645) -> (-152.4, 238.5645) centre (0, -25.4) ccw projected
  line L1 (152.4, 263.9645) -> (152.4, 352.8645)
  line L2 (152.4, 352.8645) -> (76.2, 352.8645)
  line L3 (76.2, 279.4) -> (76.2, 269.7213)
  line L4 (119.5299, 269.7213) -> (119.5299, 257.7498)
  line L5 (119.5299, 257.7498) -> (152.4, 257.7498)
  line L6 (152.4, 263.9645) -> (152.4, 257.7498)
  line L7 (119.5299, 269.7213) -> (76.2, 269.7213)
  line L8 (-152.4, 238.5645) -> (-152.4, 263.9645) projected
  line L9 (76.2, 352.8645) -> (0, 352.8645)
  line L10 (0, 352.8645) -> (0, 279.4)
  line L11 (0, 279.4) -> (76.2, 279.4)
  point P0 (-177.8, -25.4)
  dimension "d81" = 88.9
  dimension "d82" = 76.2
  dimension "d85" = 76.2
extrude "Extrusion5" add sketch "Sketch13" against normal blind 18.288 contours L0 L5 L4 L7 L3 L11 L10 L9 L2 L1
sketch "Sketch14" plane through (355.6, -41.796, 0) normal (1, 0, 0) x (0, 0, -1)
  circle A0 centre (350.35, 125.9937) radius 6.35 projected
  circle A1 centre (259.9796, 371.2894) radius 3.175 projected
  line L0 (0, 41.796) -> (0, 0) projected
  arc A2 (0, 0) -> (237.0336, 123.3919) centre (0, 289.3645) ccw projected
  line L1 (237.0336, 123.3919) -> (467.2357, 16.0468) projected
  line L2 (467.2357, 16.0468) -> (509.7069, 107.1264) projected
  line L3 (509.7069, 107.1264) -> (279.5047, 214.4715) projected
  arc A3 (279.5047, 214.4715) -> (271.9137, 388.333) centre (0, 289.3645) ccw projected
  line L4 (232.6384, 374.038) -> (271.9137, 388.333) projected
  arc A4 (0, 41.796) -> (232.6384, 374.038) centre (0, 289.3645) ccw projected
  dimension "d86" = 272.5823
properties part number "Inner" material "Polystyrene"
